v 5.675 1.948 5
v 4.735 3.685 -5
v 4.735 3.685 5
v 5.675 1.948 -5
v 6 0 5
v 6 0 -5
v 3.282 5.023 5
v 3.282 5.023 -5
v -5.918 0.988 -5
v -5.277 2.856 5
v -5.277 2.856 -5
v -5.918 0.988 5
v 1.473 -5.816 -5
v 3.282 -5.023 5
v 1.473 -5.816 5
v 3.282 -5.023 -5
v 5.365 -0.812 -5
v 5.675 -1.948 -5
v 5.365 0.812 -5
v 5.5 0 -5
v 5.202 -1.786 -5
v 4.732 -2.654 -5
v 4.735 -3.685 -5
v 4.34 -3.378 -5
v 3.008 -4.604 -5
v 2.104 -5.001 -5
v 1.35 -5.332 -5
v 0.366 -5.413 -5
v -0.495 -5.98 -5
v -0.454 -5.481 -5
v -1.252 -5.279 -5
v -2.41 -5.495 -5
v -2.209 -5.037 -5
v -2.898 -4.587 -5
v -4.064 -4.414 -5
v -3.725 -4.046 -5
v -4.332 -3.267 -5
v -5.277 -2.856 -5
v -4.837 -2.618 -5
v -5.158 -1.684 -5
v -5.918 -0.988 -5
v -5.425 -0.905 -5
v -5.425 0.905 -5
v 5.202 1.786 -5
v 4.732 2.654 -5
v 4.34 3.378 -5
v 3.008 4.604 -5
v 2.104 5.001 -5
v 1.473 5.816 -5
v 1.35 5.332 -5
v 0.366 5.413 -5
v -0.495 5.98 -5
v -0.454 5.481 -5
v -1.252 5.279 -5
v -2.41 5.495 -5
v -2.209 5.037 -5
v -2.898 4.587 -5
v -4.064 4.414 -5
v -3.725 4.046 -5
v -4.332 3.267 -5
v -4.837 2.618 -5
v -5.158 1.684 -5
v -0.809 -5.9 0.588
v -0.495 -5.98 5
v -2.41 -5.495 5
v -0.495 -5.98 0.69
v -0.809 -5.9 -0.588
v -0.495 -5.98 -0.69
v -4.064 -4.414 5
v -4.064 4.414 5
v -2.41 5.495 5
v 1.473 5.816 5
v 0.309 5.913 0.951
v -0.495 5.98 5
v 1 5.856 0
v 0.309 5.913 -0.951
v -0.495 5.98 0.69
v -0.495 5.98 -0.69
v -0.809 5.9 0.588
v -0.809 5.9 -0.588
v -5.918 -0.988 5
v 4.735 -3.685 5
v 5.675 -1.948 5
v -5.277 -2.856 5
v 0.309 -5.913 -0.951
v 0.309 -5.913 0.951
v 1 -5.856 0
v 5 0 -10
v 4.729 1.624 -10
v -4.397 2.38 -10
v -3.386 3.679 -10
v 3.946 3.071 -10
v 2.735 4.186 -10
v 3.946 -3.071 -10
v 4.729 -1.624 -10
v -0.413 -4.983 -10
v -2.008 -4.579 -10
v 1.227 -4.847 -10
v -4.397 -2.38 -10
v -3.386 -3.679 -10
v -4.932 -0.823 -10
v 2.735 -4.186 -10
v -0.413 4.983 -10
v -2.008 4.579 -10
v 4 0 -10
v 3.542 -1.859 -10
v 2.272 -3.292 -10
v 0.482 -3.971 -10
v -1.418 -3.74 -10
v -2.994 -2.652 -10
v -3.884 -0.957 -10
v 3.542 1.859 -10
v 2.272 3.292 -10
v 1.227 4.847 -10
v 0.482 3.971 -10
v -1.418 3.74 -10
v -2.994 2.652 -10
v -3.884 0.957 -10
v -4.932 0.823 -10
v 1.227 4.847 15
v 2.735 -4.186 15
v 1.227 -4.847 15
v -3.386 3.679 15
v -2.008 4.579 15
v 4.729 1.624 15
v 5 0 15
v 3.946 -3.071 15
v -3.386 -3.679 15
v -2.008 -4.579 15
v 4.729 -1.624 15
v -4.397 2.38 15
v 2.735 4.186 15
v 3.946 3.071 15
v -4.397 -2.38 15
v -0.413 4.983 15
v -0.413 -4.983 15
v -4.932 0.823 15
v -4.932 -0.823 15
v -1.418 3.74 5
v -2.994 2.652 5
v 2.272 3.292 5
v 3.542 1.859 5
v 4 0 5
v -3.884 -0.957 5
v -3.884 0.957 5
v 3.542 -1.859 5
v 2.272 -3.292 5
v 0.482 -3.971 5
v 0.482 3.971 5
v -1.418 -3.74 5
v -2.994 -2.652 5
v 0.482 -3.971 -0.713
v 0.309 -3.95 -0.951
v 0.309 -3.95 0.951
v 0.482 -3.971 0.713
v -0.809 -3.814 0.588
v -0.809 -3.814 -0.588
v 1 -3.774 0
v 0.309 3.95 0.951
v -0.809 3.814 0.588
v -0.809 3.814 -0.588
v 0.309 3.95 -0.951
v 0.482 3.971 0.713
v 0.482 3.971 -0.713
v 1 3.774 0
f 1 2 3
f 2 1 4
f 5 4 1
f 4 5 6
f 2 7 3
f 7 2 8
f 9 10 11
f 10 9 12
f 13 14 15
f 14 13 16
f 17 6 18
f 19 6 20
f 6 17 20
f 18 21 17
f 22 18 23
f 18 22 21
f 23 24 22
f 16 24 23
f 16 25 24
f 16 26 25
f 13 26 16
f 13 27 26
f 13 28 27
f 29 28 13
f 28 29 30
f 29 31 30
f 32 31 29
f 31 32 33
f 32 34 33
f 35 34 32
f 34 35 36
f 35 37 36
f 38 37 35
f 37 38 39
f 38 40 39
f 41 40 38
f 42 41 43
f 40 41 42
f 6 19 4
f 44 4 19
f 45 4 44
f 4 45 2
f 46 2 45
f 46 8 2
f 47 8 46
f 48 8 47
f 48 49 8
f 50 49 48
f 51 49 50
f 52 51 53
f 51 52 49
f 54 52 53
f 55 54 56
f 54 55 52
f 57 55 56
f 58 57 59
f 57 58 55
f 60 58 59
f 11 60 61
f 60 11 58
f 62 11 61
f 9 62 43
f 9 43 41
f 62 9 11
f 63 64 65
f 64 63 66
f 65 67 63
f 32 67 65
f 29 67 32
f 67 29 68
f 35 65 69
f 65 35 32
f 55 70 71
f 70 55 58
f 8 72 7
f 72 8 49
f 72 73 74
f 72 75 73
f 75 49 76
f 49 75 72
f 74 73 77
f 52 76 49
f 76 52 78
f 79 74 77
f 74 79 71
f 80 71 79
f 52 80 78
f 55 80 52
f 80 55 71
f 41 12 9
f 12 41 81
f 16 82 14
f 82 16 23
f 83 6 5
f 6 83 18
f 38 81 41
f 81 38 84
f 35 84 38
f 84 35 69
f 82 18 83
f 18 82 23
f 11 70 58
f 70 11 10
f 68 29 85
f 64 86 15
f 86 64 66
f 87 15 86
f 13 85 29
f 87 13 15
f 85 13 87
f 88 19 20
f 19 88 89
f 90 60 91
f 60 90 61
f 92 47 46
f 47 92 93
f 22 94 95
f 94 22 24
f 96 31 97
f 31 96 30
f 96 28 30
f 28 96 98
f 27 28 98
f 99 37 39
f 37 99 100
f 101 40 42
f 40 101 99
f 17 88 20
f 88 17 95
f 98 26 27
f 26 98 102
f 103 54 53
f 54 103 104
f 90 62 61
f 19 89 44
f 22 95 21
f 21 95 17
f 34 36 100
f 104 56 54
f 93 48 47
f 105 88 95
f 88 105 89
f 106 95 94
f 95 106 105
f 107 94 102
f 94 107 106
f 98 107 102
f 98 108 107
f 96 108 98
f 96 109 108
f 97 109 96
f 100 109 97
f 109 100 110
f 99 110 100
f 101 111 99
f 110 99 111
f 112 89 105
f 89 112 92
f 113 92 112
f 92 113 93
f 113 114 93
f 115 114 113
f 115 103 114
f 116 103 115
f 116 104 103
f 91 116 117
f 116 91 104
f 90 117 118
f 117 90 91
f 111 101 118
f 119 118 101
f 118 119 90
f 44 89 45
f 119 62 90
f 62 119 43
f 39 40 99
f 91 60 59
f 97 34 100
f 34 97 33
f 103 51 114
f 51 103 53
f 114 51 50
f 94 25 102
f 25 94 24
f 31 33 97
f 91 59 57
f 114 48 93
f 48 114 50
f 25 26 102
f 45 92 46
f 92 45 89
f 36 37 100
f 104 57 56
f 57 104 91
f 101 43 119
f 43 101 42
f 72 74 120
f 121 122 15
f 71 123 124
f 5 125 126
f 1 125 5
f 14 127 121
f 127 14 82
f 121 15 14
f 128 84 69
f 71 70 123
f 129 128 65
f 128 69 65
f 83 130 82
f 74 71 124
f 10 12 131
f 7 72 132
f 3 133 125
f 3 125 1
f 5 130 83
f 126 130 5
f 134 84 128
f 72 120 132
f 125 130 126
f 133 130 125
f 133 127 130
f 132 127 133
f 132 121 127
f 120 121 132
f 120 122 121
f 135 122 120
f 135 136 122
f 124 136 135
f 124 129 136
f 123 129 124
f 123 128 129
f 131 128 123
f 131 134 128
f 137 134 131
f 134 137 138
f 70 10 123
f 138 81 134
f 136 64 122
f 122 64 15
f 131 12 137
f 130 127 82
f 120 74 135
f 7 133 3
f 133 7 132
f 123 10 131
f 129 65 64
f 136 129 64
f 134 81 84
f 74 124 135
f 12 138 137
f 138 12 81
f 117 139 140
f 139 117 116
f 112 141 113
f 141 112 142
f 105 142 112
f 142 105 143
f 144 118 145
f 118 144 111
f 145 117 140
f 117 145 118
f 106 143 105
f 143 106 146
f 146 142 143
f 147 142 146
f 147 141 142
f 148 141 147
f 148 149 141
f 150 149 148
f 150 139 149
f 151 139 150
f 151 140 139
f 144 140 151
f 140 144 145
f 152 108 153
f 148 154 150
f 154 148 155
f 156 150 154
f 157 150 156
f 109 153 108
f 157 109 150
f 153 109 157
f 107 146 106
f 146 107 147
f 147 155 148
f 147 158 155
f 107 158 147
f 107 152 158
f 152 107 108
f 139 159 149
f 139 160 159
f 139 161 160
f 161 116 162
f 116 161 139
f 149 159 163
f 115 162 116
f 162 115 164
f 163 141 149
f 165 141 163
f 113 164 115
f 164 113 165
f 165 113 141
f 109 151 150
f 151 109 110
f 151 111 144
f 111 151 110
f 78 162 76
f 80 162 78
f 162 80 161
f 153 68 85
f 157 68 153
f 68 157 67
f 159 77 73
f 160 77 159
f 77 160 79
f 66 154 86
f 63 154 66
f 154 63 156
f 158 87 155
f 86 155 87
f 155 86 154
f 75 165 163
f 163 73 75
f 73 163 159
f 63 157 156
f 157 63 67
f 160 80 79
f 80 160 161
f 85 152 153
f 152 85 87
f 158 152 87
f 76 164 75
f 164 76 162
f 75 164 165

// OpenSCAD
// Main body of the piece
module main_body() {
    difference() {
        // Cylindrical main body with various segments
        union() {
            cylinder(h = 10, d1 = 12, d2 = 12, center = true); // Center segment
            translate([0, 0, -10])
                cylinder(h = 10, d1 = 10, d2 = 12, center = false); // Left segment
            translate([0, 0, 10])
                cylinder(h = 10, d1 = 12, d2 = 10, center = true); // Right segment
        }
        
        // Cut-outs
        translate([0, 0, -5])
            cylinder(h = 20, d = 8, center = true);
        rotate([90, 0, 0])
            translate([0, 0, 0])
                cylinder(h = 12, d = 2, center = true);
    }
}

// Assemble the model
main_body();
